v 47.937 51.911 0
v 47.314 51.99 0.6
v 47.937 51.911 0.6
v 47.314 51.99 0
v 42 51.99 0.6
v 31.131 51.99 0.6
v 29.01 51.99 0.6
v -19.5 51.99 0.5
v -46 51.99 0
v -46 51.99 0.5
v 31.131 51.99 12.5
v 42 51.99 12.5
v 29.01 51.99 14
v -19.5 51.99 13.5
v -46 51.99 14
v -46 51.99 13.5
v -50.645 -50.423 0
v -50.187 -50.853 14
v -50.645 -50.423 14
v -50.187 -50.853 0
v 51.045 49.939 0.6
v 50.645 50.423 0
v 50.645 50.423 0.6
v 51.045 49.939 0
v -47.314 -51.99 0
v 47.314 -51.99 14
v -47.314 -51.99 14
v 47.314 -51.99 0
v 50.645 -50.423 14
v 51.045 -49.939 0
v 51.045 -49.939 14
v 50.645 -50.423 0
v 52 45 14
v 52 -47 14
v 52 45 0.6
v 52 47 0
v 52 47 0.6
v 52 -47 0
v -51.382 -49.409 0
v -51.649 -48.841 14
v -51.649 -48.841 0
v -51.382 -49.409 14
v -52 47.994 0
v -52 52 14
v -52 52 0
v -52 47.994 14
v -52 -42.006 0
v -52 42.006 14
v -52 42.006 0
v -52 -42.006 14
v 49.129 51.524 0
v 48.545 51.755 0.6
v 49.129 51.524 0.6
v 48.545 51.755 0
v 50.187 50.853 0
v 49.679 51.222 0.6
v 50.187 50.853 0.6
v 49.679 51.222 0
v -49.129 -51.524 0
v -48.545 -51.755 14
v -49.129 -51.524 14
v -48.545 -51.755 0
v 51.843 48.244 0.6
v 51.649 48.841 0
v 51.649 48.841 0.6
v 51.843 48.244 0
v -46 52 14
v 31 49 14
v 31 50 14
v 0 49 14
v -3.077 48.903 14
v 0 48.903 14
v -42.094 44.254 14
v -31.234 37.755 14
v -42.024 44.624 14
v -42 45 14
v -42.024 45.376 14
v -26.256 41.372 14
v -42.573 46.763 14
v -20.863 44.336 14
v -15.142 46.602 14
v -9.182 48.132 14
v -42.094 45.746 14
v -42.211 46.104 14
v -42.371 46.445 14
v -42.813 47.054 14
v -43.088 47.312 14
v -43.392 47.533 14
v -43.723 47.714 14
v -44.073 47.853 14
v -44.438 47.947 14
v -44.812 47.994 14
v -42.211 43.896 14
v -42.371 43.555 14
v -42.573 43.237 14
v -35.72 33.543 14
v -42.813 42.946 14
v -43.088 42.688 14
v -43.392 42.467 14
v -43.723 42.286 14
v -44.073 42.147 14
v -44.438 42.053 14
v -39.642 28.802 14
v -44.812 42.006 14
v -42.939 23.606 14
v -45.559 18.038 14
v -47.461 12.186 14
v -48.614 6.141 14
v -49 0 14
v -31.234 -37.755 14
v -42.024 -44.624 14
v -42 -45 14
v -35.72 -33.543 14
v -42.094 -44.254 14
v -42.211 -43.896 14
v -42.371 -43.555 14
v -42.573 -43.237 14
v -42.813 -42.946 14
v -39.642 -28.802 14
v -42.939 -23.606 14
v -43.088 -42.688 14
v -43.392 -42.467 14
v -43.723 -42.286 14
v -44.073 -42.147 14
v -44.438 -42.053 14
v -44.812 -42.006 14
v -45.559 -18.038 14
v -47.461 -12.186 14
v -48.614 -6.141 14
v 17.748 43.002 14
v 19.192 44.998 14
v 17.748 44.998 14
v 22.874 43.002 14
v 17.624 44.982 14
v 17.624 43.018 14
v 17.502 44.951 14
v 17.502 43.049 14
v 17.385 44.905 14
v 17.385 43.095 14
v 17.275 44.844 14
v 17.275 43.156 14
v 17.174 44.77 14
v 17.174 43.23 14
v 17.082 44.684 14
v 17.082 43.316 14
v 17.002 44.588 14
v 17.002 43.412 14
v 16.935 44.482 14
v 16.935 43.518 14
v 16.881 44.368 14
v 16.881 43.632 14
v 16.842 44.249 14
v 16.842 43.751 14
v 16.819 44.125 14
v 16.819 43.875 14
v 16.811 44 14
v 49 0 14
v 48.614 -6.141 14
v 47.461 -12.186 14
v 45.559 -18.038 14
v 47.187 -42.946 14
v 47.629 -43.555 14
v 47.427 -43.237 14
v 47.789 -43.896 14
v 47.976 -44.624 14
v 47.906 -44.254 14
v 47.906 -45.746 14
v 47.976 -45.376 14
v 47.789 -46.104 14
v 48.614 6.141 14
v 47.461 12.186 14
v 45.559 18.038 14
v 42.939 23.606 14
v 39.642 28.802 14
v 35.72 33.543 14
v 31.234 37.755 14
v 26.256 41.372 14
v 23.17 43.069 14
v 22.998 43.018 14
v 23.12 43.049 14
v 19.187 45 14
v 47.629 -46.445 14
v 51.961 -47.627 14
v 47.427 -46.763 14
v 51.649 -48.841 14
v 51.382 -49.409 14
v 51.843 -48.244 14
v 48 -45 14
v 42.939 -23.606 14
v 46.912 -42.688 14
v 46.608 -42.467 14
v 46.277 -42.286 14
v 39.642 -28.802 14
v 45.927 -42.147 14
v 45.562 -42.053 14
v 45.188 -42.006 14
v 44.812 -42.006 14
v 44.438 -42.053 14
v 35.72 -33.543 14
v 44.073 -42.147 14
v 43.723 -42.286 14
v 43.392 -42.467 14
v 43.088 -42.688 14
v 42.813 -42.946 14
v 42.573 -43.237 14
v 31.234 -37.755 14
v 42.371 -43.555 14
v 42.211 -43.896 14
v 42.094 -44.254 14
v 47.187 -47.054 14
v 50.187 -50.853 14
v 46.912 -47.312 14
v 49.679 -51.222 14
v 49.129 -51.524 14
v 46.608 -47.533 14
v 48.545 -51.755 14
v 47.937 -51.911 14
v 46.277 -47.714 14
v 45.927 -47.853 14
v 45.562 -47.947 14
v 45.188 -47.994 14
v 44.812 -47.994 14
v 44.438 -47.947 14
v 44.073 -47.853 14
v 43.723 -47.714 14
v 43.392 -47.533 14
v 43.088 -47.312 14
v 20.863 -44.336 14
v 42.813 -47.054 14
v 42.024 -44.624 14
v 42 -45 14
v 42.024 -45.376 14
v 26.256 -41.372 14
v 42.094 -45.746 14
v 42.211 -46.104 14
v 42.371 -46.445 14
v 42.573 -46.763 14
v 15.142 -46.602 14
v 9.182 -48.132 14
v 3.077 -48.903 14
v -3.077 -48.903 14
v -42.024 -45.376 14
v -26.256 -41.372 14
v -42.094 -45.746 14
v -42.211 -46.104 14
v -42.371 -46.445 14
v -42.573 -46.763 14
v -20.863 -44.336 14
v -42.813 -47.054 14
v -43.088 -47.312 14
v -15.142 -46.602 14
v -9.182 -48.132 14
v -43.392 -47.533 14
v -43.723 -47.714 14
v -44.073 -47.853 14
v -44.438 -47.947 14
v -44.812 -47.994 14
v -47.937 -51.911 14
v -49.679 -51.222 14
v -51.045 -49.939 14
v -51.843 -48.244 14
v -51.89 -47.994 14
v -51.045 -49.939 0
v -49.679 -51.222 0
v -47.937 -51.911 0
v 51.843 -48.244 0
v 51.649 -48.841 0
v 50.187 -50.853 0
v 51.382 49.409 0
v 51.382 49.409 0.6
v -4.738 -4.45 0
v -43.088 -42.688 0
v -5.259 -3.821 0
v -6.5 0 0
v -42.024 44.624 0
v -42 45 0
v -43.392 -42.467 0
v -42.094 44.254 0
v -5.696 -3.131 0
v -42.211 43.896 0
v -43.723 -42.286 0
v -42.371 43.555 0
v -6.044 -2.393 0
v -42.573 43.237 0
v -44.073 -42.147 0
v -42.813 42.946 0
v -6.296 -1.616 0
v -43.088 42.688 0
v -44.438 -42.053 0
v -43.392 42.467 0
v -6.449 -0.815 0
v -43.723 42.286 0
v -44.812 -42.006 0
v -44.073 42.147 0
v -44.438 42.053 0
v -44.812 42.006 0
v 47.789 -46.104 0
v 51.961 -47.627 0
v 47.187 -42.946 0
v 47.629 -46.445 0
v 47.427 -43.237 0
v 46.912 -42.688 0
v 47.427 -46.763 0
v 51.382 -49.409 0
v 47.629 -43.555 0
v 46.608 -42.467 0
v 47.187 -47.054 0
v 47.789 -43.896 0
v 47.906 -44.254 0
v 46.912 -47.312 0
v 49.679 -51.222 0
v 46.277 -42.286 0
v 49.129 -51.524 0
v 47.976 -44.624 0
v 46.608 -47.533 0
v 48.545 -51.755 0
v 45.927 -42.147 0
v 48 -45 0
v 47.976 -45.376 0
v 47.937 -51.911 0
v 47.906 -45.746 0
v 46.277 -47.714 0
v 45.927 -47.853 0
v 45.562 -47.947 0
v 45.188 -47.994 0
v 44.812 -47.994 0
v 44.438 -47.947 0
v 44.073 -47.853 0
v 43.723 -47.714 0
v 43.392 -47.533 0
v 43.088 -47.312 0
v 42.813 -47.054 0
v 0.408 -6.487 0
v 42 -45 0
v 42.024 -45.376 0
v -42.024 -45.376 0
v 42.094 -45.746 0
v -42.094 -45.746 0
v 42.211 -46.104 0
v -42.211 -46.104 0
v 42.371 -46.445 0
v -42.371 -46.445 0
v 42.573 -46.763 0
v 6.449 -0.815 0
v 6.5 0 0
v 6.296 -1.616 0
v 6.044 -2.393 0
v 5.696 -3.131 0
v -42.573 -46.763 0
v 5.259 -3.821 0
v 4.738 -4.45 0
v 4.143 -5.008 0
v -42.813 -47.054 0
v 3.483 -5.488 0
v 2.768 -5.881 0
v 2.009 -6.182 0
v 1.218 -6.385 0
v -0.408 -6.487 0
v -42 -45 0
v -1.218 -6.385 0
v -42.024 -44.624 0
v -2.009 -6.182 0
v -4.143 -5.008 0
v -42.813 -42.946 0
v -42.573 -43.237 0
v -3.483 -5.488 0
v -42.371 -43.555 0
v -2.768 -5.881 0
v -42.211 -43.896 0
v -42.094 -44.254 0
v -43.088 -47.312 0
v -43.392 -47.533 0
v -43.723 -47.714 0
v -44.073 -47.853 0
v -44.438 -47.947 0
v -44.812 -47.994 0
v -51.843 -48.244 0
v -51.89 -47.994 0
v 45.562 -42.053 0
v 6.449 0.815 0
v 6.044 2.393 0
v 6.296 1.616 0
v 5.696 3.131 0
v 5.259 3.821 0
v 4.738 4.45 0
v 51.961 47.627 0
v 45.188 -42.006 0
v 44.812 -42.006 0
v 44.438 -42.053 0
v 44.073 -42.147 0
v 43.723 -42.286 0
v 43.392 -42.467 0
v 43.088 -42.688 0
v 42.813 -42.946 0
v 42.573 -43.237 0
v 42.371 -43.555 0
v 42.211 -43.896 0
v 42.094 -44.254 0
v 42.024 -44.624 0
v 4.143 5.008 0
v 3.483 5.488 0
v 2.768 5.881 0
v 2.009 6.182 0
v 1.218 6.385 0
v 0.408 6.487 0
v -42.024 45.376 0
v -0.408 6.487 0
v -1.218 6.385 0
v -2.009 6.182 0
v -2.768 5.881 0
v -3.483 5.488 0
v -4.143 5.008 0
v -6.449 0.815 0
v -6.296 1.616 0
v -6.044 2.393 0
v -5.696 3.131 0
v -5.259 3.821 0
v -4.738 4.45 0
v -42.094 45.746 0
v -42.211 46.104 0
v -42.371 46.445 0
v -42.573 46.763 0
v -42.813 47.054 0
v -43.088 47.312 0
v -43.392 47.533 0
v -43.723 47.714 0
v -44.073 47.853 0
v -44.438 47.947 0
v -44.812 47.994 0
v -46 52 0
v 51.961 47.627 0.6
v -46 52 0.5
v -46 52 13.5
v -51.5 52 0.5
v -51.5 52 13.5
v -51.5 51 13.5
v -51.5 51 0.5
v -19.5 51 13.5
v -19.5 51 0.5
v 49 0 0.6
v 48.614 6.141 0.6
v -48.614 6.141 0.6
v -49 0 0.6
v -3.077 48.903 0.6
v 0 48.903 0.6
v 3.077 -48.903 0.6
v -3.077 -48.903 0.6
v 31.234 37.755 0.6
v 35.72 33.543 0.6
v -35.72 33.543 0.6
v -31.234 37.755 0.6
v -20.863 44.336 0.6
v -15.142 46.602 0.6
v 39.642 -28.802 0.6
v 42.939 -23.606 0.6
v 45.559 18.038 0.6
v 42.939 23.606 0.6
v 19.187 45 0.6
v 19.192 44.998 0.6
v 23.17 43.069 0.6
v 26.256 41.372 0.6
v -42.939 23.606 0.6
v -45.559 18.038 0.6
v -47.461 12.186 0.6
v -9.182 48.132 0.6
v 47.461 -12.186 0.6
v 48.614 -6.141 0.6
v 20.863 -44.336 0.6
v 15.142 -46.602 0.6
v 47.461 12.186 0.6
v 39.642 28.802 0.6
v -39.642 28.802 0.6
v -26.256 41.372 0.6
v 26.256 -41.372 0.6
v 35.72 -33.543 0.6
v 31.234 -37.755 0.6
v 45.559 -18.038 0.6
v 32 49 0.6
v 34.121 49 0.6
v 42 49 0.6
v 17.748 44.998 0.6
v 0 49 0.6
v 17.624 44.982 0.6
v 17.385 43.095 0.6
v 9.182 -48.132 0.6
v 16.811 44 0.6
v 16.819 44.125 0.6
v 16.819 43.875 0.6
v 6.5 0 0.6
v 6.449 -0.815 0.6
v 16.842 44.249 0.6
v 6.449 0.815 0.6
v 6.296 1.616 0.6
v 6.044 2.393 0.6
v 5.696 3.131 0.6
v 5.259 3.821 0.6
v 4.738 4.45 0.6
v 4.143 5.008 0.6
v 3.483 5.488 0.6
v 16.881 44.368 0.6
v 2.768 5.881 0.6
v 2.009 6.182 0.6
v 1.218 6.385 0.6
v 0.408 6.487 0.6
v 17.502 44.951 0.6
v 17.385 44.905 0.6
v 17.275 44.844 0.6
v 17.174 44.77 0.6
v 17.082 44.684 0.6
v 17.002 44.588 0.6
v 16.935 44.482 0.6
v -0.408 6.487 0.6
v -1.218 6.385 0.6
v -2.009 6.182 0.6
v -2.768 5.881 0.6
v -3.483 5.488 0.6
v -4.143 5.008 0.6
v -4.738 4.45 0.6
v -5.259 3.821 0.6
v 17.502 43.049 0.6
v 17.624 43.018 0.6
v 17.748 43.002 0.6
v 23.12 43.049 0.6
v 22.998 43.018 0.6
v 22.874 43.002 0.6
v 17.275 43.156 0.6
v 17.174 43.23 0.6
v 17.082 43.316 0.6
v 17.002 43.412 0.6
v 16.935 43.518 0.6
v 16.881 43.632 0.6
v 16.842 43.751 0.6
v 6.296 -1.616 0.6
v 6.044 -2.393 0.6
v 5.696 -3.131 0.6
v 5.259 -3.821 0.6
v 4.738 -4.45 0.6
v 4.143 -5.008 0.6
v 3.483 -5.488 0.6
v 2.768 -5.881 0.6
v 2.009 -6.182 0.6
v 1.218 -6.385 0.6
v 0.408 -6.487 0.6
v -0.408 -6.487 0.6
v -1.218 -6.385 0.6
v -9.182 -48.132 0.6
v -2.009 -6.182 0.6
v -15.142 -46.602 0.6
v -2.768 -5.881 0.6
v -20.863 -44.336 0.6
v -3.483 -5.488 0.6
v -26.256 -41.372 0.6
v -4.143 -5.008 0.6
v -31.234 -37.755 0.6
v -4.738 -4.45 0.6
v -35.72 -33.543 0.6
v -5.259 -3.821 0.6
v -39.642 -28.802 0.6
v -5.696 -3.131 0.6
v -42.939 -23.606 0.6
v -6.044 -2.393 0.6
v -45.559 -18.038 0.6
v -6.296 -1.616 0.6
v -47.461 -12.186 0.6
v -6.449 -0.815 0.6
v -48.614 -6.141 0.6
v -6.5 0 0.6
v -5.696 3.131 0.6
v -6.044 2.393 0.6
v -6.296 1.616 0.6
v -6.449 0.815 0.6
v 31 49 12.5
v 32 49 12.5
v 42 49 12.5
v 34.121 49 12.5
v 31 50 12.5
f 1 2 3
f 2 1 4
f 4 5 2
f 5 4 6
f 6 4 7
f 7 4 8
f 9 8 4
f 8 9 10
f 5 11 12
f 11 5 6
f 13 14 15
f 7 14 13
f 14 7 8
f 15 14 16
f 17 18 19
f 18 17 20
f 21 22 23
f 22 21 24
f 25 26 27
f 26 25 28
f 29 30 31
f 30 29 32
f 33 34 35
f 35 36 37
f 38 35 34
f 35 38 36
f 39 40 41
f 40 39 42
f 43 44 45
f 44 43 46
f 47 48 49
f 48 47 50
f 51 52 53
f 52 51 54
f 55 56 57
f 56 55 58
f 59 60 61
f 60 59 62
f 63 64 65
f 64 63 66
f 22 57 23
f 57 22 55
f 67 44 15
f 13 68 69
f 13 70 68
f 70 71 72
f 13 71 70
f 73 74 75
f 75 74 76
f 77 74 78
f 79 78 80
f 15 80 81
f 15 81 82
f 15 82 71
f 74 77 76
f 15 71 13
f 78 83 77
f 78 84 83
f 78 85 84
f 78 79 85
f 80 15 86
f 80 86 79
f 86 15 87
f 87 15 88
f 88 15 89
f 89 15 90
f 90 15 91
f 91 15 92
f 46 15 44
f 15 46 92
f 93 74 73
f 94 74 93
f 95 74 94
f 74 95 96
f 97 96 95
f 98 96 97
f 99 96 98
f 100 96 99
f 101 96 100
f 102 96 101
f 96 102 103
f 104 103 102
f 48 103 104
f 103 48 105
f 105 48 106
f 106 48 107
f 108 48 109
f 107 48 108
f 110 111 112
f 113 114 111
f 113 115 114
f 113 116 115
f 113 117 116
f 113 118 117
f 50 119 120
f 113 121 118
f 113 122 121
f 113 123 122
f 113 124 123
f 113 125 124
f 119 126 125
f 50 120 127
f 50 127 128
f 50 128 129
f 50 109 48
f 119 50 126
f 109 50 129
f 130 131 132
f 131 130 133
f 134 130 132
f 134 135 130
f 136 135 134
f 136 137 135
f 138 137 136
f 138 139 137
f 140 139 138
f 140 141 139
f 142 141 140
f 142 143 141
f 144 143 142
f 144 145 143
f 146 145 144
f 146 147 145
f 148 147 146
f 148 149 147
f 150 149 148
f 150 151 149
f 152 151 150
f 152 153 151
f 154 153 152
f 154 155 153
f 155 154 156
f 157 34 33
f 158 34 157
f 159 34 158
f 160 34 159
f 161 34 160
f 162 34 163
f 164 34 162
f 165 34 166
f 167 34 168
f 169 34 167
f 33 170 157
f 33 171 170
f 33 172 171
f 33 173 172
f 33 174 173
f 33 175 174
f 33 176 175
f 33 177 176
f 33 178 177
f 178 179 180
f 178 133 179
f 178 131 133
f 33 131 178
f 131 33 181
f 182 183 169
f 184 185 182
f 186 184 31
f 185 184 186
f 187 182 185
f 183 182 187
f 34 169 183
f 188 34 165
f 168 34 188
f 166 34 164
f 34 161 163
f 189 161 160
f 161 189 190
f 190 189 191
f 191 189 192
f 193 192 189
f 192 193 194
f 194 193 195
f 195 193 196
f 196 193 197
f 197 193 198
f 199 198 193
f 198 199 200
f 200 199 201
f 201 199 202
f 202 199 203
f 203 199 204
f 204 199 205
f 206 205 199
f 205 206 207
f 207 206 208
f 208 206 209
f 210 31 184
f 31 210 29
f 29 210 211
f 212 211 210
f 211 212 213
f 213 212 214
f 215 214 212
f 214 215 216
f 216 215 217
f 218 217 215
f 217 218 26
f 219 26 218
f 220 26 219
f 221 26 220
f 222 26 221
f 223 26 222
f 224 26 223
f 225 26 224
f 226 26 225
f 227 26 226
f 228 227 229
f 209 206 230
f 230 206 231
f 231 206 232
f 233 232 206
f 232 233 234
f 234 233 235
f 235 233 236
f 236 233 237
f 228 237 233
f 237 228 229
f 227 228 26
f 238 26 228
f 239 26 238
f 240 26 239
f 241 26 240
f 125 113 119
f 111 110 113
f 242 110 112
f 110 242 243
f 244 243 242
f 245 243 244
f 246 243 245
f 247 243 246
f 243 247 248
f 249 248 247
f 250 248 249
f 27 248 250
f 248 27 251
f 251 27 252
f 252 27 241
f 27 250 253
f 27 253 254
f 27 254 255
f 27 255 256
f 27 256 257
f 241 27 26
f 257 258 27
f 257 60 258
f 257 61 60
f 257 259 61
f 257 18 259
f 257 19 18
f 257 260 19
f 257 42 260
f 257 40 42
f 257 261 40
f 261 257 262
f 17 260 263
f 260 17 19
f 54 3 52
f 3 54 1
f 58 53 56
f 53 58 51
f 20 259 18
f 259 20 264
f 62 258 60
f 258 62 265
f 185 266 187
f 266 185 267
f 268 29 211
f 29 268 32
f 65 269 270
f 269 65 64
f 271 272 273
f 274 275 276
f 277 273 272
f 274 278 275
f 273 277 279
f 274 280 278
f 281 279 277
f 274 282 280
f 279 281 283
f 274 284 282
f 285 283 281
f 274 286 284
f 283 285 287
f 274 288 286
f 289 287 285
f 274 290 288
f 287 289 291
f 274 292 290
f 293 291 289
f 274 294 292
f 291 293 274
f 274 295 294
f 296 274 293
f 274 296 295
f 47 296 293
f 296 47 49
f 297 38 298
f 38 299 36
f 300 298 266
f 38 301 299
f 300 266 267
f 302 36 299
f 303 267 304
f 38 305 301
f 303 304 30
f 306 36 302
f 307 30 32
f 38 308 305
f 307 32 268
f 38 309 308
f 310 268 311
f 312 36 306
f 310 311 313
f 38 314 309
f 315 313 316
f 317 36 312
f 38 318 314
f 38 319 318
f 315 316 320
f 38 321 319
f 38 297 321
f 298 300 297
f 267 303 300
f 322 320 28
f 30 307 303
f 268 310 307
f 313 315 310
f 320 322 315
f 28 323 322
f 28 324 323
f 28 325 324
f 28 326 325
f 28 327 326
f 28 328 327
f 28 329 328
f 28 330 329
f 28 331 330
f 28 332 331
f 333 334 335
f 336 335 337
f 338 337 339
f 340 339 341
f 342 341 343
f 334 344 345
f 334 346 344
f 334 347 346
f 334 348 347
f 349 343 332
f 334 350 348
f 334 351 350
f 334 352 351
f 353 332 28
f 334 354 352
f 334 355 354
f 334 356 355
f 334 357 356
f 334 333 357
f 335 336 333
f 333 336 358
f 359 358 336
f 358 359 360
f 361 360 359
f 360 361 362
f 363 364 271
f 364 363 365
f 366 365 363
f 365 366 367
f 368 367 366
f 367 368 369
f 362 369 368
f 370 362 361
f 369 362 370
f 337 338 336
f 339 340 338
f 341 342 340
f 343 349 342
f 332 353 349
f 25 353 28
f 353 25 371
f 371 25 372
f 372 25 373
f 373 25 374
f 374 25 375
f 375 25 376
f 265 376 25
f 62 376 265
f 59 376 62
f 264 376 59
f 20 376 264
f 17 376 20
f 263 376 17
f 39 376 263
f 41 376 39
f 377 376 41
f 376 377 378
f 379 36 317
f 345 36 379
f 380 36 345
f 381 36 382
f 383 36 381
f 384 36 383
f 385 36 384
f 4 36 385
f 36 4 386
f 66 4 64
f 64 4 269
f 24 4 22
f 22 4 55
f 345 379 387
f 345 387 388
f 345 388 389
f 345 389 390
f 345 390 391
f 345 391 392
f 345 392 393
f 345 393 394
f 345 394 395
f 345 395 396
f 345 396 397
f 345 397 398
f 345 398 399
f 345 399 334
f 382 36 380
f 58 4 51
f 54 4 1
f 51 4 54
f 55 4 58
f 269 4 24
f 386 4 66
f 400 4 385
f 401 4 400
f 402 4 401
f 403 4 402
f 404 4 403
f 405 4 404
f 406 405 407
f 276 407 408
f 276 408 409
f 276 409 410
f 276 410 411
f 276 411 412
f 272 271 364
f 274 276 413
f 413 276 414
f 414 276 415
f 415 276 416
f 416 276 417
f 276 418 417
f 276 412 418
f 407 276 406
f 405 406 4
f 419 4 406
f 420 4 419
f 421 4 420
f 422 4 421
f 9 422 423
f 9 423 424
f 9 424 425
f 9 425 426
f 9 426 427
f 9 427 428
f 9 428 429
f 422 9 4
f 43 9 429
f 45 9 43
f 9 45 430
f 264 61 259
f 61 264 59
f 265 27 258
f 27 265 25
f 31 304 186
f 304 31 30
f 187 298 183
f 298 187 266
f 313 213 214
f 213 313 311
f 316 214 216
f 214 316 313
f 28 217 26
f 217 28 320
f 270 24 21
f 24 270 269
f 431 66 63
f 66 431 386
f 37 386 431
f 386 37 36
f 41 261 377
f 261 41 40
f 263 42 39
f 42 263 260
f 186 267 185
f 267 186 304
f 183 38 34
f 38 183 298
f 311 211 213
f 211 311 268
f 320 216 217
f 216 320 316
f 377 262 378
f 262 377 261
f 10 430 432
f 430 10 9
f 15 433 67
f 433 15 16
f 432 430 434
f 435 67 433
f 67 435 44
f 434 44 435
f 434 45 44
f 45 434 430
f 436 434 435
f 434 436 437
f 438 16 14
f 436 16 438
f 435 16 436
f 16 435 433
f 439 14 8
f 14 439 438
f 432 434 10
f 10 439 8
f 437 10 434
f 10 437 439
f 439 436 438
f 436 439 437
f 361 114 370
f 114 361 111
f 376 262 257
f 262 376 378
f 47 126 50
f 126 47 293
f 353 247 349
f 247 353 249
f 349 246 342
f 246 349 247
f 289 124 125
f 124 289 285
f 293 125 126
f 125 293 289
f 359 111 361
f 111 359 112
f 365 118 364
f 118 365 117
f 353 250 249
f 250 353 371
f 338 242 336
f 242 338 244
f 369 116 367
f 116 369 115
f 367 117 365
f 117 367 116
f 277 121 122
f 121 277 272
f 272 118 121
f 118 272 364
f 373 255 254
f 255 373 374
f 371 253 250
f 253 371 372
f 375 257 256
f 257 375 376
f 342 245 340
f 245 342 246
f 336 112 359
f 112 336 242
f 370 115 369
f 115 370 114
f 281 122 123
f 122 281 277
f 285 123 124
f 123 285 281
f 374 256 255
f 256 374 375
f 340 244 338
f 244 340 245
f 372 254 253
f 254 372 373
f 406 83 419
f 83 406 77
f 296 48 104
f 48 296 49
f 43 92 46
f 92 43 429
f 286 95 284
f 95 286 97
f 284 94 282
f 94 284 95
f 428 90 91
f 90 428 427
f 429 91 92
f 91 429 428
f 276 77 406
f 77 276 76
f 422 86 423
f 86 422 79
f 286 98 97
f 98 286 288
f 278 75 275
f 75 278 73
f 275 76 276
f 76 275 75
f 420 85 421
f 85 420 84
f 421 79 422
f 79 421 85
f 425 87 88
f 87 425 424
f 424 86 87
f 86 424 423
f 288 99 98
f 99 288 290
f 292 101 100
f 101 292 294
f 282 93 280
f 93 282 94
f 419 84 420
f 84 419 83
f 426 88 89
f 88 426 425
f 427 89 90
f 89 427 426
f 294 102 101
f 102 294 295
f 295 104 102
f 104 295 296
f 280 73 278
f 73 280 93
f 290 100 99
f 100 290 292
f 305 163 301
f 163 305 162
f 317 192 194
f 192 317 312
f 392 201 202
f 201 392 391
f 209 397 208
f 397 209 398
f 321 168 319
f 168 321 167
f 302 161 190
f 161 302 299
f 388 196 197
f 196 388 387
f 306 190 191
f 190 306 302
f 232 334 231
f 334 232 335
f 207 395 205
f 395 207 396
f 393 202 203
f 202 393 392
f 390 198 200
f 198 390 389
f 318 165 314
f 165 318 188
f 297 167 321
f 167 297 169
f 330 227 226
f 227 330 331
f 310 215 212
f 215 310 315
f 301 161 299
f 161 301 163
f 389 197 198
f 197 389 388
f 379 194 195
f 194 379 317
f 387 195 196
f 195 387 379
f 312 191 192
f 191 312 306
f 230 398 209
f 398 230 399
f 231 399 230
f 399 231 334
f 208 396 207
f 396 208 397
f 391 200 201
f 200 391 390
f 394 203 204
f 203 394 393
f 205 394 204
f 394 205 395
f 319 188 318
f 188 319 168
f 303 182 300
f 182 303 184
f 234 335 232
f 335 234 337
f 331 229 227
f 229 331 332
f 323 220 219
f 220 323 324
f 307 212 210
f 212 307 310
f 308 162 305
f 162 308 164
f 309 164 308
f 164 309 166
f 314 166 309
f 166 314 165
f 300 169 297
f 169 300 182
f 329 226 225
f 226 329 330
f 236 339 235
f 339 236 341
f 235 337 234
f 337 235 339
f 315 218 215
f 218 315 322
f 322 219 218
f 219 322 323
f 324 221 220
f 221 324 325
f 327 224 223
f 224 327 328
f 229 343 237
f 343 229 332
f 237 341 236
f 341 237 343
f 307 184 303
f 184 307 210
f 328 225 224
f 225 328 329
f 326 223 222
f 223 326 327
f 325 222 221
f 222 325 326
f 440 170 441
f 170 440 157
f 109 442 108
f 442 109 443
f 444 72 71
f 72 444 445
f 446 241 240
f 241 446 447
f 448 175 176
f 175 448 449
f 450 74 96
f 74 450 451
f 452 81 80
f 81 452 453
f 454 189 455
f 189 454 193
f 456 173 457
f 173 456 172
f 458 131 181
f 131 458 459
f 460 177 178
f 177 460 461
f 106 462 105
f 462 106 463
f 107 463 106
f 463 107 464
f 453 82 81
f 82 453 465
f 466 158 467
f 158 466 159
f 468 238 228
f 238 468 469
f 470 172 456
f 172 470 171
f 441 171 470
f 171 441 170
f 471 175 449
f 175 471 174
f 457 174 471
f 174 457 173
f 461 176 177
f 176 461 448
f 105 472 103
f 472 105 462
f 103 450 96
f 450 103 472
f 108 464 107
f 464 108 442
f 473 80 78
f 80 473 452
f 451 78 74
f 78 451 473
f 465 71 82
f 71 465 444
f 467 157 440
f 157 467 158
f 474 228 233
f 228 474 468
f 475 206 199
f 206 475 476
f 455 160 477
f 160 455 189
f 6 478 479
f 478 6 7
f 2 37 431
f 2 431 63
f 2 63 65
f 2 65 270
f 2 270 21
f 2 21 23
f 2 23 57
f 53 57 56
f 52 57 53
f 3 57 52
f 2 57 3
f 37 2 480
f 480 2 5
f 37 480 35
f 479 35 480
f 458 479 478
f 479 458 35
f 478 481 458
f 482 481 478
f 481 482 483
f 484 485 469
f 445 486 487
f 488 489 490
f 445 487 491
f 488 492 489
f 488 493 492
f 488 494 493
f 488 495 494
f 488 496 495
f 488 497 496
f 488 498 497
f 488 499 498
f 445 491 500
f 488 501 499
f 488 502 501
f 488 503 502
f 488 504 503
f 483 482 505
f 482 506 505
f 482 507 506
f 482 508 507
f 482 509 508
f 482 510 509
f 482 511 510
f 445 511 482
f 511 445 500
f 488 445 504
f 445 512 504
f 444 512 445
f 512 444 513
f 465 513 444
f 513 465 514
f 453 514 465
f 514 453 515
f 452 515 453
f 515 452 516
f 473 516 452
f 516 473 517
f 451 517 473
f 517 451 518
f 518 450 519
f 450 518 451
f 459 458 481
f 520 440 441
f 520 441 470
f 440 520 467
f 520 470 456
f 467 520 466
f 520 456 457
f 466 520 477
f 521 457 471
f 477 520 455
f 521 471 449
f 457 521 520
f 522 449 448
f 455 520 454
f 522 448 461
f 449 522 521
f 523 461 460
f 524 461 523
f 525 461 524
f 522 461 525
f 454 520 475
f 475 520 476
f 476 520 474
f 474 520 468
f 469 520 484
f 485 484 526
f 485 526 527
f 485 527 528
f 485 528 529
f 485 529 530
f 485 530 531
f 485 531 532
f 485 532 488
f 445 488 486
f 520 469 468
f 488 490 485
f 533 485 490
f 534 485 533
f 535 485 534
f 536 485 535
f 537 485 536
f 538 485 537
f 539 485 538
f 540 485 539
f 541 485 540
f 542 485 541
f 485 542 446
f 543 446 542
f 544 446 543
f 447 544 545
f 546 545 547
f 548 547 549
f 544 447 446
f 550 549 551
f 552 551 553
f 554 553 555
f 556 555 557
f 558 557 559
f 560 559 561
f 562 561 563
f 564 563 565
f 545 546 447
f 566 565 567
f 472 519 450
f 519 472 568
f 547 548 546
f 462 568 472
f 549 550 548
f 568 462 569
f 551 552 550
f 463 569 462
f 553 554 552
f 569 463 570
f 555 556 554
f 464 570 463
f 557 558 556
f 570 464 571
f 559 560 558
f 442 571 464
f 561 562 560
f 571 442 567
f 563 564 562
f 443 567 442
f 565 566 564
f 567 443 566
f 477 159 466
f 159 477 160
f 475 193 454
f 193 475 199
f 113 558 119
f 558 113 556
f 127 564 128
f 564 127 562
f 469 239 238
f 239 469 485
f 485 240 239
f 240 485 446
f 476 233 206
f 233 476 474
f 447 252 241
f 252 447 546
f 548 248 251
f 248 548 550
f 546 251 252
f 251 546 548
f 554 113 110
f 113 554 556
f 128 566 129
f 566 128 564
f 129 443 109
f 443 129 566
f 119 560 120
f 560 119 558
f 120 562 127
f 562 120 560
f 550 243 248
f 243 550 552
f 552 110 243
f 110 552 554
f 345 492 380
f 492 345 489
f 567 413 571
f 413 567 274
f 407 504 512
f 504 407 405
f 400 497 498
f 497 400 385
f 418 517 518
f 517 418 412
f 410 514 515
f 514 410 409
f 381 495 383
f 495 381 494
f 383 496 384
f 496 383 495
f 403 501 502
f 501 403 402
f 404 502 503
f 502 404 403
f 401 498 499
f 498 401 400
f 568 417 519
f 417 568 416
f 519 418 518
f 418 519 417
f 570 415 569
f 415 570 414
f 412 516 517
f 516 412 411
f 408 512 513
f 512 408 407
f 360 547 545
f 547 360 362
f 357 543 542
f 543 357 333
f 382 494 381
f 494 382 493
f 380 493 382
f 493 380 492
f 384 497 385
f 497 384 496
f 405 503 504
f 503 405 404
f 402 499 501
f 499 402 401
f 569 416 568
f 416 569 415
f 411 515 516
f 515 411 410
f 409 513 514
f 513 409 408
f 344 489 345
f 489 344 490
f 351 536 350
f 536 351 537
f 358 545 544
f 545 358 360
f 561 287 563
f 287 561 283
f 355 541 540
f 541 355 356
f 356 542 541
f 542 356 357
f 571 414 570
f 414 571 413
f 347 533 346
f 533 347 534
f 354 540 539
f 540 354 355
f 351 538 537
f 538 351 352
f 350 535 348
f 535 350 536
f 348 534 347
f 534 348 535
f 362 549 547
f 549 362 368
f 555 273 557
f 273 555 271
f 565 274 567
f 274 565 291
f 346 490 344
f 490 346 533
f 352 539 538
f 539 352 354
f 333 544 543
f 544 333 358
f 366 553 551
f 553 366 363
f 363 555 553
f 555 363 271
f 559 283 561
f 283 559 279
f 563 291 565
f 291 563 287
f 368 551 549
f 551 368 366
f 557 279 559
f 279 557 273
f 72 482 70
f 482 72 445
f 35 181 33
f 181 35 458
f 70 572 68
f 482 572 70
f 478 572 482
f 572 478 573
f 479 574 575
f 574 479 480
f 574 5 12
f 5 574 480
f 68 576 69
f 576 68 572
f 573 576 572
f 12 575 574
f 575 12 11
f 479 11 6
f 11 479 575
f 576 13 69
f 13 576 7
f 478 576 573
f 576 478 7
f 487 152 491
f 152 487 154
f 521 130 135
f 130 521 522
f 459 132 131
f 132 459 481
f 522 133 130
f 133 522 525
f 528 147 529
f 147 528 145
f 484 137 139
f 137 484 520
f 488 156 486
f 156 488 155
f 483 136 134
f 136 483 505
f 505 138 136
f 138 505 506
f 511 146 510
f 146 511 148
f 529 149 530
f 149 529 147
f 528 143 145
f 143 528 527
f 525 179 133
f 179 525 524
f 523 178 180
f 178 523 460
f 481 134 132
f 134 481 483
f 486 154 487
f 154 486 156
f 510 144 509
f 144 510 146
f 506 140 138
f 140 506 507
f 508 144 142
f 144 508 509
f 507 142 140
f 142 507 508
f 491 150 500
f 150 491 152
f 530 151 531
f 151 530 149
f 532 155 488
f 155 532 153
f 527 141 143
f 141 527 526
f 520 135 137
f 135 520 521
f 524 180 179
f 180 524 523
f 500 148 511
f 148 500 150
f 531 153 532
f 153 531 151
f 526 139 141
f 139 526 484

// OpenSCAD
$fn = 50;


union() {
	difference() {
		union() {
			translate(v = [0, 0, 0]) {
				rotate(a = [0, 0, 0]) {
					hull() {
						translate(v = [-47.0000000000, 47.0000000000, 0]) {
							rotate(a = [0, 0, 0]) {
								translate(v = [0, 0, 0]) {
									rotate(a = [0, 0, 0]) {
										cylinder(h = 14, r = 5);
									}
								}
							}
						}
						translate(v = [47.0000000000, 47.0000000000, 0]) {
							rotate(a = [0, 0, 0]) {
								translate(v = [0, 0, 0]) {
									rotate(a = [0, 0, 0]) {
										cylinder(h = 14, r = 5);
									}
								}
							}
						}
						translate(v = [-47.0000000000, -47.0000000000, 0]) {
							rotate(a = [0, 0, 0]) {
								translate(v = [0, 0, 0]) {
									rotate(a = [0, 0, 0]) {
										cylinder(h = 14, r = 5);
									}
								}
							}
						}
						translate(v = [47.0000000000, -47.0000000000, 0]) {
							rotate(a = [0, 0, 0]) {
								translate(v = [0, 0, 0]) {
									rotate(a = [0, 0, 0]) {
										cylinder(h = 14, r = 5);
									}
								}
							}
						}
					}
				}
			}
			translate(v = [-52.0000000000, 46.0000000000, 0]) {
				rotate(a = [0, 0, 0]) {
					cube(size = [6, 6, 14]);
				}
			}
		}
		union() {
			#translate(v = [-51.5000000000, 51.0000000000, 0.5000000000]) {
				rotate(a = [0, 0, 0]) {
					cube(size = [32, 1, 13.0000000000]);
				}
			}
			translate(v = [-52.5000000000, -45.0000000000, -125]) {
				rotate(a = [0, 0, 0]) {
					hull() {
						translate(v = [7.5000000000, 0, 0]) {
							rotate(a = [0, 0, 0]) {
								translate(v = [0, 0, 0]) {
									rotate(a = [0, 0, 0]) {
										cylinder(h = 250, r = 3.0000000000);
									}
								}
							}
						}
						translate(v = [-7.5000000000, 0, 0]) {
							rotate(a = [0, 0, 0]) {
								translate(v = [0, 0, 0]) {
									rotate(a = [0, 0, 0]) {
										cylinder(h = 250, r = 3.0000000000);
									}
								}
							}
						}
					}
				}
			}
			translate(v = [-52.5000000000, 45.0000000000, -125]) {
				rotate(a = [0, 0, 0]) {
					hull() {
						translate(v = [7.5000000000, 0, 0]) {
							rotate(a = [0, 0, 0]) {
								translate(v = [0, 0, 0]) {
									rotate(a = [0, 0, 0]) {
										cylinder(h = 250, r = 3.0000000000);
									}
								}
							}
						}
						translate(v = [-7.5000000000, 0, 0]) {
							rotate(a = [0, 0, 0]) {
								translate(v = [0, 0, 0]) {
									rotate(a = [0, 0, 0]) {
										cylinder(h = 250, r = 3.0000000000);
									}
								}
							}
						}
					}
				}
			}
			translate(v = [45.0000000000, -45.0000000000, -125.0000000000]) {
				rotate(a = [0, 0, 0]) {
					cylinder(h = 250, r = 3.0000000000);
				}
			}
			translate(v = [0, 0, 0.6000000000]) {
				rotate(a = [0, 0, 0]) {
					cylinder(h = 16.4000000000, r = 49.0000000000);
				}
			}
			translate(v = [0, 0, -7.0000000000]) {
				rotate(a = [0, 0, 0]) {
					cylinder(h = 14, r = 6.5000000000);
				}
			}
			translate(v = [0.0000000000, 45.0000000000, 0.6000000000]) {
				rotate(a = [0, 0, 0]) {
					cube(size = [52.0000000000, 4, 16.4000000000]);
				}
			}
			translate(v = [42.0000000000, 45.0000000000, 0.6000000000]) {
				rotate(a = [0, 0, 0]) {
					cube(size = [10, 7, 16.4000000000]);
				}
			}
			translate(v = [31.0000000000, 45.0000000000, 12.5000000000]) {
				rotate(a = [0, 0, 0]) {
					cube(size = [21, 7, 1.5000000000]);
				}
			}
			translate(v = [28.2500000000, 52.7500000000, 0.6000000000]) {
				rotate(a = [0, 0, -45]) {
					cube(size = [7.5000000000, 1.5000000000, 16.4000000000]);
				}
			}
			translate(v = [11.0610000000, 43.0000000000, 0.6000000000]) {
				rotate(a = [0, 0, 0]) {
					cube(size = [7.5000000000, 2, 13.4000000000]);
				}
			}
		}
	}
	union() {
		translate(v = [20.3110000000, 44.0000000000, 0]) {
			rotate(a = [0, 0, 0]) {
				hull() {
					translate(v = [2.5000000000, 0, 0]) {
						rotate(a = [0, 0, 0]) {
							#translate(v = [0, 0, 0]) {
								rotate(a = [0, 0, 0]) {
									cylinder(h = 14, r = 1.0000000000);
								}
							}
						}
					}
					translate(v = [-2.5000000000, 0, 0]) {
						rotate(a = [0, 0, 0]) {
							#translate(v = [0, 0, 0]) {
								rotate(a = [0, 0, 0]) {
									cylinder(h = 14, r = 1.0000000000);
								}
							}
						}
					}
				}
			}
		}
	}
}
